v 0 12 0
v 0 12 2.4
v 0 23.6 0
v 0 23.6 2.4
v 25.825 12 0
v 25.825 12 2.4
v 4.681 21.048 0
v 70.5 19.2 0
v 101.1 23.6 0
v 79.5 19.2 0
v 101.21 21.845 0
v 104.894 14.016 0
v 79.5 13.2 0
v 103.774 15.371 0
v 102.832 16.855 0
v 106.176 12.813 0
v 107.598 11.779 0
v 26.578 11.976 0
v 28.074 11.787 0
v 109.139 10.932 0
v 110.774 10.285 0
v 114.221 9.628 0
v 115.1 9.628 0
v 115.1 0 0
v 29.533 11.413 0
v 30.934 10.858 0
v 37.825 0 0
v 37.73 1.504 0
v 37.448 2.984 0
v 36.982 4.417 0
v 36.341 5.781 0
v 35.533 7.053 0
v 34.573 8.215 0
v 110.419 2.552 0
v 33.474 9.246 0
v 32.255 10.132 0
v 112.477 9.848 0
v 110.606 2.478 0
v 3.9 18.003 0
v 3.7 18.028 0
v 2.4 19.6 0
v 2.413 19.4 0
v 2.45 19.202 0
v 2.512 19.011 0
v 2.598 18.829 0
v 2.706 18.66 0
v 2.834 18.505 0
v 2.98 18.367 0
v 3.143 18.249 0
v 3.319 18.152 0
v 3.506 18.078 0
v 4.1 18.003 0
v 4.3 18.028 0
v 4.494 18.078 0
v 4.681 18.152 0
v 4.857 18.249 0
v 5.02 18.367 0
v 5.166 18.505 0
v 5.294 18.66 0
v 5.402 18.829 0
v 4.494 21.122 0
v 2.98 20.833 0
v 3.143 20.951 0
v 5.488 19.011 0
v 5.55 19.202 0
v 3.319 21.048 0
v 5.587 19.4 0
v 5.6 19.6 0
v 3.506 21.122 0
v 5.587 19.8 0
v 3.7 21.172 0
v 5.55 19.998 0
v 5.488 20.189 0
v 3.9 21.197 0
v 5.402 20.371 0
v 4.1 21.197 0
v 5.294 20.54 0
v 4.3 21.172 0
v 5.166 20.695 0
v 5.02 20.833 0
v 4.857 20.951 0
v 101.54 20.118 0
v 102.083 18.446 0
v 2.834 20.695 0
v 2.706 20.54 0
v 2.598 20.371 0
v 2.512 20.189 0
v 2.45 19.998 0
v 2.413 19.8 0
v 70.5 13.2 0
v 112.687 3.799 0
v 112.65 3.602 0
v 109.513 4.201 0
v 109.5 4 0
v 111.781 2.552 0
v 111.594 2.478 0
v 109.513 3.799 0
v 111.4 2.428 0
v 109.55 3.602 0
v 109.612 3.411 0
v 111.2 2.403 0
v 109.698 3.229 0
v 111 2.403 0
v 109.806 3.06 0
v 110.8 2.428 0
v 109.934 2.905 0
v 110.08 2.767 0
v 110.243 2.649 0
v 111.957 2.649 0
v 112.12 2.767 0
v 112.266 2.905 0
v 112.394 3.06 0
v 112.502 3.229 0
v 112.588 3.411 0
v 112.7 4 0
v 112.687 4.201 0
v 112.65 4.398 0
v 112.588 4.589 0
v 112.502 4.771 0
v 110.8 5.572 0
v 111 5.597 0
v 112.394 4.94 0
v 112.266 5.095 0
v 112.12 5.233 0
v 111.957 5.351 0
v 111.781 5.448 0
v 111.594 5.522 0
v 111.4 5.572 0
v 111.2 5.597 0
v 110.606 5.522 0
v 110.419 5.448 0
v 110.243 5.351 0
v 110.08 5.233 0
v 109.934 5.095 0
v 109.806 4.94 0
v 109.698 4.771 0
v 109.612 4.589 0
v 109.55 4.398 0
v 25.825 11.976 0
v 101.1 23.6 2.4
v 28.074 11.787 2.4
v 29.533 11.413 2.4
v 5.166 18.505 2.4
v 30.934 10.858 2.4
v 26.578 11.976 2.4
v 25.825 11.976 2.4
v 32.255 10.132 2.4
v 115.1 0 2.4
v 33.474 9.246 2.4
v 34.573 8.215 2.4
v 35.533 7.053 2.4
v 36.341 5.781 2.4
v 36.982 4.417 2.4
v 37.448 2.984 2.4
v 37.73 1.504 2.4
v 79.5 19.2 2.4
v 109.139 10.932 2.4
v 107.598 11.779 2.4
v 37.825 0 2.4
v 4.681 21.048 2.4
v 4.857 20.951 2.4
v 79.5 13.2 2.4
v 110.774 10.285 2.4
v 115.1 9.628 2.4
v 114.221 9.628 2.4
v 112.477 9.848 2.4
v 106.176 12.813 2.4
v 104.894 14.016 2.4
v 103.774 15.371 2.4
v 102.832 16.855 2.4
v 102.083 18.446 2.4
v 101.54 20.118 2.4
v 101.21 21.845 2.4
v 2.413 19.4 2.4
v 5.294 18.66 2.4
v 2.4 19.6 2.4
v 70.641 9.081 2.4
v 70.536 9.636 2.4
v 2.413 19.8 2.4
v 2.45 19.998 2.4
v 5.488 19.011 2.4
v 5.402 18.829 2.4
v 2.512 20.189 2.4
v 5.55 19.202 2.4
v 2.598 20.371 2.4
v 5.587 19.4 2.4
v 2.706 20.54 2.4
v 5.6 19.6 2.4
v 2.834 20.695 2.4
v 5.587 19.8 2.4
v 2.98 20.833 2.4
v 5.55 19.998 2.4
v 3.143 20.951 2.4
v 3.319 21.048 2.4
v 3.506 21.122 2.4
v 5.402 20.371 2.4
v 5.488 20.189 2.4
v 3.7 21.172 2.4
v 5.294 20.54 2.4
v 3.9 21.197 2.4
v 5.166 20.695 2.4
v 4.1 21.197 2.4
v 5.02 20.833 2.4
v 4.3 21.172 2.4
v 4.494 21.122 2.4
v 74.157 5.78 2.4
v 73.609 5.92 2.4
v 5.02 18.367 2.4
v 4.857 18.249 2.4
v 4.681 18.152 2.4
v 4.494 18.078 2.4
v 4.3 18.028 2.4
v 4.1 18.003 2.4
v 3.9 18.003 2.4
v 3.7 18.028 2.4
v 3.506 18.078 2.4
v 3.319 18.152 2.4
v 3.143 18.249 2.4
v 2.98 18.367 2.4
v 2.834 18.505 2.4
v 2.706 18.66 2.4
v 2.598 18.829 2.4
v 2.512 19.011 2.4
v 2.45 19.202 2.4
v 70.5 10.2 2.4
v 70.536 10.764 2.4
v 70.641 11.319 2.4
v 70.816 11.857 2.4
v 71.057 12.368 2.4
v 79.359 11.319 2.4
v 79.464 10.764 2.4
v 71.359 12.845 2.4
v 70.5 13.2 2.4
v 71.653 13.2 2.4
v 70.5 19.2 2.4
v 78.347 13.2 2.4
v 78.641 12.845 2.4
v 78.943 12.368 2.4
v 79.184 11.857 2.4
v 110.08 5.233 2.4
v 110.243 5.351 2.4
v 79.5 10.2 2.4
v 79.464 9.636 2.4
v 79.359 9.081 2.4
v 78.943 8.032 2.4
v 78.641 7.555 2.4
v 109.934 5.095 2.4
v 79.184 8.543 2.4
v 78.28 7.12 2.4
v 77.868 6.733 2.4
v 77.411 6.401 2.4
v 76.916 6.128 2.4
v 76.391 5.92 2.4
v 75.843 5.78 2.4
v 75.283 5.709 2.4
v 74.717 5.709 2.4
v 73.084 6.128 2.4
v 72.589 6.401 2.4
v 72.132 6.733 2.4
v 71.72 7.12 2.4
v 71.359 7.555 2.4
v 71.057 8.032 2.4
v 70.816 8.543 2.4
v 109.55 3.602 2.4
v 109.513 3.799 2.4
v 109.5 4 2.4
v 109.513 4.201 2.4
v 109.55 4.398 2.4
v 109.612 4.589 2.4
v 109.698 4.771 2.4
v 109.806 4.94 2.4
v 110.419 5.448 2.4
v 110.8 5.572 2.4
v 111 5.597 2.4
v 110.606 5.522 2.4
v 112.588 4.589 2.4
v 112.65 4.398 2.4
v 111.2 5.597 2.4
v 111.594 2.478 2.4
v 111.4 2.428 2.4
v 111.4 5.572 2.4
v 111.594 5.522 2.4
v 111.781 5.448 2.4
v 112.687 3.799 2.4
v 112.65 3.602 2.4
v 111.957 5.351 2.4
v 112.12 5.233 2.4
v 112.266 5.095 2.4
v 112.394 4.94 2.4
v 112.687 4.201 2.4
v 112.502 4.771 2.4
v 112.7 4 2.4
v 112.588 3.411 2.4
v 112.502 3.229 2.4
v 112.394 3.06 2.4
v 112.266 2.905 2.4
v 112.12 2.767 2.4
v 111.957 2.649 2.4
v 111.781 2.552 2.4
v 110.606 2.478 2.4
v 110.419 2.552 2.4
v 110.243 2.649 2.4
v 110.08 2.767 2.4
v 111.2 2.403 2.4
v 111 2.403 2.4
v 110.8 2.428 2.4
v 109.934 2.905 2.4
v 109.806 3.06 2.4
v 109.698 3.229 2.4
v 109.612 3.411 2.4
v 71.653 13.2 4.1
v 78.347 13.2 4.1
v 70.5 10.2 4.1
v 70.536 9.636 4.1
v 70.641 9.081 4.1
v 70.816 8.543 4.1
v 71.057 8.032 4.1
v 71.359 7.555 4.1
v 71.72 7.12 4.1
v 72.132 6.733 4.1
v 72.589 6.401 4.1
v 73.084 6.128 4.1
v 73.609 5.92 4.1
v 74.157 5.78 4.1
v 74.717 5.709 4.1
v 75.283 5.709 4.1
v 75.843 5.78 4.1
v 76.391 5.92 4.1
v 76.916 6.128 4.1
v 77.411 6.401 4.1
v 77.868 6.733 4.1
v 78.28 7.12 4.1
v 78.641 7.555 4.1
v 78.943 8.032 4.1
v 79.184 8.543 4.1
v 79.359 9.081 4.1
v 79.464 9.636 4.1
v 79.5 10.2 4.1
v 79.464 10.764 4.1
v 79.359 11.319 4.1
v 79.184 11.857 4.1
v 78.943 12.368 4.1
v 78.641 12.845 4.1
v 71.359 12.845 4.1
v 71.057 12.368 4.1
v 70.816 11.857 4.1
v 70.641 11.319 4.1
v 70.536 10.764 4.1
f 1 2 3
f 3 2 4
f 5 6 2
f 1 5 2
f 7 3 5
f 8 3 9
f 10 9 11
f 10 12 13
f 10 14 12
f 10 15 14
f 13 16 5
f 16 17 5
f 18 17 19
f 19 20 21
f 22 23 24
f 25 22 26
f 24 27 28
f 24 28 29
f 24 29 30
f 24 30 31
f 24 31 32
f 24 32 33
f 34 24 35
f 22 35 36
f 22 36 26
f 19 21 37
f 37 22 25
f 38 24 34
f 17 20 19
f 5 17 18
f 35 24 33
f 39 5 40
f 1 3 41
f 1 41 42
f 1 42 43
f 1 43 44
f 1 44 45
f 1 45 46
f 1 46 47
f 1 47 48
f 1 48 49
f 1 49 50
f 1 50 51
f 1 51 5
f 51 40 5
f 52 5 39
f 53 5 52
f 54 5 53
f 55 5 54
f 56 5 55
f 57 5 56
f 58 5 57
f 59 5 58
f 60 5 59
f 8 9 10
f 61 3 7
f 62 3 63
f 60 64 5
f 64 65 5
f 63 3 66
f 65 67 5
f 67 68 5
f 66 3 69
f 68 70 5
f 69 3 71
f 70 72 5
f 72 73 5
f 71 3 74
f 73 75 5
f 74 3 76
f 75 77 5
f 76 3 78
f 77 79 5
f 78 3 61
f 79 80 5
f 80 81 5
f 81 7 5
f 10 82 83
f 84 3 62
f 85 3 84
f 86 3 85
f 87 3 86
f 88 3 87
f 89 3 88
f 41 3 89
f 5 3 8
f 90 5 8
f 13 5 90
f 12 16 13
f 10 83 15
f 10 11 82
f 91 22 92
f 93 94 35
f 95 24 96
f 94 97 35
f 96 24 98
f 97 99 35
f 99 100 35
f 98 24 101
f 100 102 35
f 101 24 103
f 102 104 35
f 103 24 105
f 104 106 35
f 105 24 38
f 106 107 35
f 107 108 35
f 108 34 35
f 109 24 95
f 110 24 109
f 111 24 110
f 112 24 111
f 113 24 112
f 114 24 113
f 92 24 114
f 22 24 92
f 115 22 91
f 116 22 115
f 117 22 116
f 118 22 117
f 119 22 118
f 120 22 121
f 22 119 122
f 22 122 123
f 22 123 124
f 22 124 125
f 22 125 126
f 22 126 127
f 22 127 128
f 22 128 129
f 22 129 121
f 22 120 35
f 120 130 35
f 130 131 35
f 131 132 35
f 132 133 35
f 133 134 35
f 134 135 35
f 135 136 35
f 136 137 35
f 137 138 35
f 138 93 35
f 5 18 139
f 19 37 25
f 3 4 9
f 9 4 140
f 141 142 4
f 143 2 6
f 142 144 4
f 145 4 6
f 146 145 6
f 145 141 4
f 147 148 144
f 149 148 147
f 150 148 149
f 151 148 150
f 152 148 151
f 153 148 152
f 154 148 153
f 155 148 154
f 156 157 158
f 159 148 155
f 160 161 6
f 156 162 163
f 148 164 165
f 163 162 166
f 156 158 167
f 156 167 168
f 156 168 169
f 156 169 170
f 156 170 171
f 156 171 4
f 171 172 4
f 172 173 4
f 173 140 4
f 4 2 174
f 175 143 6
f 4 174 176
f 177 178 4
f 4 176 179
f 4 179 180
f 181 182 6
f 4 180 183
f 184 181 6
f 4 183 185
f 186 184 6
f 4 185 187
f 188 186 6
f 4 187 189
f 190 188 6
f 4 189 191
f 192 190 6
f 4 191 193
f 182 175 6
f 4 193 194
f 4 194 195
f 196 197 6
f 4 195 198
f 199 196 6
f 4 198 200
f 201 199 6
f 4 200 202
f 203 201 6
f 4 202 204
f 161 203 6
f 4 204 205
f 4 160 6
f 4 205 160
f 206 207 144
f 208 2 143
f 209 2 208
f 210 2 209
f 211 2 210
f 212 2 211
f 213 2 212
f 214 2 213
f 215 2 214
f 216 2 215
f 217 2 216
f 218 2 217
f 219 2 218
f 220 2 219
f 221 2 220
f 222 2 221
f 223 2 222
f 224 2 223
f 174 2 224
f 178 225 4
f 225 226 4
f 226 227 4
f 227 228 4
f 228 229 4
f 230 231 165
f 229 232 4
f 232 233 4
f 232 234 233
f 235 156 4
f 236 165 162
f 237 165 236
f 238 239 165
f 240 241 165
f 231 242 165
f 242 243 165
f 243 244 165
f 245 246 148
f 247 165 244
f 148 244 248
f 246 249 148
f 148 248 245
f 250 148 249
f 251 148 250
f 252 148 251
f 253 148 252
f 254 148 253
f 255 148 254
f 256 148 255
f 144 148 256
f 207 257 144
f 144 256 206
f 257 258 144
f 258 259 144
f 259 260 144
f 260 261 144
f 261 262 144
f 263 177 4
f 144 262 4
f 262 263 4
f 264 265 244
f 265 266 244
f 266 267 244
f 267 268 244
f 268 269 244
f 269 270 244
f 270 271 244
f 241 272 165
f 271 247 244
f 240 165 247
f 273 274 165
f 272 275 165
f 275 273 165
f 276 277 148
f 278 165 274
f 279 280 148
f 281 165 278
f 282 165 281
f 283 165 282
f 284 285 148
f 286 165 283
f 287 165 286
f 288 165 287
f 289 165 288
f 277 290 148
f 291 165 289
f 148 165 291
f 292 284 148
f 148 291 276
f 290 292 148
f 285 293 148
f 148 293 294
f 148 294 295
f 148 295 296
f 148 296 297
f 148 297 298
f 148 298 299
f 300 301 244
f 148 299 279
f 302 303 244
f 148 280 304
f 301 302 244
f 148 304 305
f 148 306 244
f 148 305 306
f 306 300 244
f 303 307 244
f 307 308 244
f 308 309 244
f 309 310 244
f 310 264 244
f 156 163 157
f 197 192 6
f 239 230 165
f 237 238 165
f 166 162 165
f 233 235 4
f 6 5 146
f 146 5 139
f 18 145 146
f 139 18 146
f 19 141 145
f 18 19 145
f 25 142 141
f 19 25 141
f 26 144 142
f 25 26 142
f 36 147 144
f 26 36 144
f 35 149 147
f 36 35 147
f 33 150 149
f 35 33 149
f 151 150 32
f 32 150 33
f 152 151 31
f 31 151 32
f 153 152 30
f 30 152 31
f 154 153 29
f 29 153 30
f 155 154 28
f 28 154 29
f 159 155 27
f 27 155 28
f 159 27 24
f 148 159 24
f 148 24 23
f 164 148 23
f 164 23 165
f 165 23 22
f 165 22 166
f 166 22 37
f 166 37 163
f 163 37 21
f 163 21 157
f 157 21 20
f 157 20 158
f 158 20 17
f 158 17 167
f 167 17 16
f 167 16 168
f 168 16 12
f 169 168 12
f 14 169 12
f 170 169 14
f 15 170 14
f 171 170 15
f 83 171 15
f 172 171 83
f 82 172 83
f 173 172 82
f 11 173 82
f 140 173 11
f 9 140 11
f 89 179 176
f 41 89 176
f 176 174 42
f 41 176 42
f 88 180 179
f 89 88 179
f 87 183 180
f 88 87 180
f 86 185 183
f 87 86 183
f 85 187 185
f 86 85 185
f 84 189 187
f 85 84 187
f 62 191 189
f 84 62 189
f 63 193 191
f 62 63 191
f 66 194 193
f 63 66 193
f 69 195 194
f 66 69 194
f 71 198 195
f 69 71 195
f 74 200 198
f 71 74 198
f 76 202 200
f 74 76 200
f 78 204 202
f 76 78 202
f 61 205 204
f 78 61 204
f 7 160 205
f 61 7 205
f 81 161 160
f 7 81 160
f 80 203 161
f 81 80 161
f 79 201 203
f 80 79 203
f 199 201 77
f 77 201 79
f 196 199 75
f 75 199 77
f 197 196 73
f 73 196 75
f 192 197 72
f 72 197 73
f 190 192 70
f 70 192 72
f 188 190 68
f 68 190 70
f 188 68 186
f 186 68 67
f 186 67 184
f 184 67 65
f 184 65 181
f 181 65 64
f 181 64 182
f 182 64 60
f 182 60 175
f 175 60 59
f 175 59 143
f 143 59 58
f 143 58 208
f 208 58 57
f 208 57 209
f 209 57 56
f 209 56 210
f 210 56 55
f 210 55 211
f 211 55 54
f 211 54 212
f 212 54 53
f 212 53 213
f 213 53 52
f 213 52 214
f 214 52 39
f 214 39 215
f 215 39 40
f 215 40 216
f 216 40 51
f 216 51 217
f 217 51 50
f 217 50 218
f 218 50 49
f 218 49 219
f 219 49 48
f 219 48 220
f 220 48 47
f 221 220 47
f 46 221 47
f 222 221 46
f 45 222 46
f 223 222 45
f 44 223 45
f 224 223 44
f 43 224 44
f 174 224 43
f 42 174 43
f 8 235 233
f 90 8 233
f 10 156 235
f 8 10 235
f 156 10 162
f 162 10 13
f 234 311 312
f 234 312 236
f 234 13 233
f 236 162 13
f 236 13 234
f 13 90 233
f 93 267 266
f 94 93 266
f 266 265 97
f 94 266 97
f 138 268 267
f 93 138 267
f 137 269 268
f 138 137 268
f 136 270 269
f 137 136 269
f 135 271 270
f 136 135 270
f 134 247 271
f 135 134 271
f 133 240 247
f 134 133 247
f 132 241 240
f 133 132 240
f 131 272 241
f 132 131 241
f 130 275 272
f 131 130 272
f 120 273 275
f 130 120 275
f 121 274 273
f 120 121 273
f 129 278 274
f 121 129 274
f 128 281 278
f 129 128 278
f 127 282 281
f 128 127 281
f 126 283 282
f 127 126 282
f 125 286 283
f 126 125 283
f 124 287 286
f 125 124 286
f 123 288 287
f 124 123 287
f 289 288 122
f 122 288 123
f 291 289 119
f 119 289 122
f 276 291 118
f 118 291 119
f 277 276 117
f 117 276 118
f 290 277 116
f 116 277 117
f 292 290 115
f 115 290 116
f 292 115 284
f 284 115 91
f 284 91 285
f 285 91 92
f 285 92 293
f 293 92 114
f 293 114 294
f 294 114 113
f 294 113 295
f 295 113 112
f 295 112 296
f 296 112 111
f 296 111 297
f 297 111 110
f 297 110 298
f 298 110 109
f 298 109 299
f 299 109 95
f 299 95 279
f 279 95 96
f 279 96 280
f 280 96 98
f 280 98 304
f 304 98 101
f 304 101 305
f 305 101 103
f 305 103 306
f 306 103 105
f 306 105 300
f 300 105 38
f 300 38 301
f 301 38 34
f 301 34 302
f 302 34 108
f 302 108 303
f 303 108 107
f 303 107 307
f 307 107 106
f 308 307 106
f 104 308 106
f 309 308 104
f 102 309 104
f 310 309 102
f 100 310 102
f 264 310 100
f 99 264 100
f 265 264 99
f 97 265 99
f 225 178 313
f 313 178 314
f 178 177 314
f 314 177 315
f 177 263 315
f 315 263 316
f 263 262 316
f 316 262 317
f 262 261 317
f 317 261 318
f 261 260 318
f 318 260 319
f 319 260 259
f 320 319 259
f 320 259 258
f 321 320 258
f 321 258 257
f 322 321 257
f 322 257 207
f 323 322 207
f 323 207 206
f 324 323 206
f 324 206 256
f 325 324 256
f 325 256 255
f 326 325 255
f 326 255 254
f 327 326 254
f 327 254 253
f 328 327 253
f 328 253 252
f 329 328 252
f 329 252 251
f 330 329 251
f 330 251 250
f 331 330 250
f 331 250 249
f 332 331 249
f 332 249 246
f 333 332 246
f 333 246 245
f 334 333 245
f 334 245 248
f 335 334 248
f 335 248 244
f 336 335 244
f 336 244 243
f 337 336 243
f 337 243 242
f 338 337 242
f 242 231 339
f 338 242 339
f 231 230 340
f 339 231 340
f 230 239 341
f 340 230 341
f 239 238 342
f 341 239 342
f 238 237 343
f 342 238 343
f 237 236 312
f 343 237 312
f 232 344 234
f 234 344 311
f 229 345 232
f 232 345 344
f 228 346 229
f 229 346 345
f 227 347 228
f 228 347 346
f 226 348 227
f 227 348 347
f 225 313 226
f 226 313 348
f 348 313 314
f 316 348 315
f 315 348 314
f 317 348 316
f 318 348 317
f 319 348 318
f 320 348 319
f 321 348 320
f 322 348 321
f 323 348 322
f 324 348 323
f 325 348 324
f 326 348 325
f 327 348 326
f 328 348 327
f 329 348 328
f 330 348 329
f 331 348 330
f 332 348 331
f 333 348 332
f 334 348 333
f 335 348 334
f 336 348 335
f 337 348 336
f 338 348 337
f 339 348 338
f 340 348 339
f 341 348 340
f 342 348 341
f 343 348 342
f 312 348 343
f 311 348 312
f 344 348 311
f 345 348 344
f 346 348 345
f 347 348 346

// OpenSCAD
$fn = 50;

hia = 30;
bia = 17.5;
lia = 109;

sp = 2;

d = 0.7;

h = 1;
b = bia + d + 2*sp;
l = lia + d + 2*sp;


ba = 7;
la = 10;

a1 = 4 + sp;
a2 = a1 + 33;
a3 = a2 + 54;

ro = 4.5;
ho = h-d;

lo = 75;

bk = 5;

bo = ba+bk/2+d;

rs = 3.2/2;

rotate([0,0,0]){
	difference(){
		union(){
			cube([l+2*d,b+2*d,h+2*d]);
			translate([lo,bo,0]) cylinder(r = ro, h = 2*h+3*d);
		}
		translate([4,b+2*d-4,-0.5*d]) cylinder(r = rs, h = h+3*d);
		translate([l+2*d,b+2*d,-0.5*d]) cylinder(r = 14, h = h+3*d);
		translate([l+2*d-4,+4,-0.5*d]) cylinder(r = rs, h = h+3*d);
		translate([l/4+2*d-4,0,-0.5*d]) cylinder(r = 12, h = h+3*d);
		translate([-0.1,-0.1,-h*2]) cube([l/4+2*d-3.9,12.1,4*h+2*d]);
			translate([lo-ro,bo+ro-1.5,-1*d]) cube([ro*2,6,10]);

	}


}
